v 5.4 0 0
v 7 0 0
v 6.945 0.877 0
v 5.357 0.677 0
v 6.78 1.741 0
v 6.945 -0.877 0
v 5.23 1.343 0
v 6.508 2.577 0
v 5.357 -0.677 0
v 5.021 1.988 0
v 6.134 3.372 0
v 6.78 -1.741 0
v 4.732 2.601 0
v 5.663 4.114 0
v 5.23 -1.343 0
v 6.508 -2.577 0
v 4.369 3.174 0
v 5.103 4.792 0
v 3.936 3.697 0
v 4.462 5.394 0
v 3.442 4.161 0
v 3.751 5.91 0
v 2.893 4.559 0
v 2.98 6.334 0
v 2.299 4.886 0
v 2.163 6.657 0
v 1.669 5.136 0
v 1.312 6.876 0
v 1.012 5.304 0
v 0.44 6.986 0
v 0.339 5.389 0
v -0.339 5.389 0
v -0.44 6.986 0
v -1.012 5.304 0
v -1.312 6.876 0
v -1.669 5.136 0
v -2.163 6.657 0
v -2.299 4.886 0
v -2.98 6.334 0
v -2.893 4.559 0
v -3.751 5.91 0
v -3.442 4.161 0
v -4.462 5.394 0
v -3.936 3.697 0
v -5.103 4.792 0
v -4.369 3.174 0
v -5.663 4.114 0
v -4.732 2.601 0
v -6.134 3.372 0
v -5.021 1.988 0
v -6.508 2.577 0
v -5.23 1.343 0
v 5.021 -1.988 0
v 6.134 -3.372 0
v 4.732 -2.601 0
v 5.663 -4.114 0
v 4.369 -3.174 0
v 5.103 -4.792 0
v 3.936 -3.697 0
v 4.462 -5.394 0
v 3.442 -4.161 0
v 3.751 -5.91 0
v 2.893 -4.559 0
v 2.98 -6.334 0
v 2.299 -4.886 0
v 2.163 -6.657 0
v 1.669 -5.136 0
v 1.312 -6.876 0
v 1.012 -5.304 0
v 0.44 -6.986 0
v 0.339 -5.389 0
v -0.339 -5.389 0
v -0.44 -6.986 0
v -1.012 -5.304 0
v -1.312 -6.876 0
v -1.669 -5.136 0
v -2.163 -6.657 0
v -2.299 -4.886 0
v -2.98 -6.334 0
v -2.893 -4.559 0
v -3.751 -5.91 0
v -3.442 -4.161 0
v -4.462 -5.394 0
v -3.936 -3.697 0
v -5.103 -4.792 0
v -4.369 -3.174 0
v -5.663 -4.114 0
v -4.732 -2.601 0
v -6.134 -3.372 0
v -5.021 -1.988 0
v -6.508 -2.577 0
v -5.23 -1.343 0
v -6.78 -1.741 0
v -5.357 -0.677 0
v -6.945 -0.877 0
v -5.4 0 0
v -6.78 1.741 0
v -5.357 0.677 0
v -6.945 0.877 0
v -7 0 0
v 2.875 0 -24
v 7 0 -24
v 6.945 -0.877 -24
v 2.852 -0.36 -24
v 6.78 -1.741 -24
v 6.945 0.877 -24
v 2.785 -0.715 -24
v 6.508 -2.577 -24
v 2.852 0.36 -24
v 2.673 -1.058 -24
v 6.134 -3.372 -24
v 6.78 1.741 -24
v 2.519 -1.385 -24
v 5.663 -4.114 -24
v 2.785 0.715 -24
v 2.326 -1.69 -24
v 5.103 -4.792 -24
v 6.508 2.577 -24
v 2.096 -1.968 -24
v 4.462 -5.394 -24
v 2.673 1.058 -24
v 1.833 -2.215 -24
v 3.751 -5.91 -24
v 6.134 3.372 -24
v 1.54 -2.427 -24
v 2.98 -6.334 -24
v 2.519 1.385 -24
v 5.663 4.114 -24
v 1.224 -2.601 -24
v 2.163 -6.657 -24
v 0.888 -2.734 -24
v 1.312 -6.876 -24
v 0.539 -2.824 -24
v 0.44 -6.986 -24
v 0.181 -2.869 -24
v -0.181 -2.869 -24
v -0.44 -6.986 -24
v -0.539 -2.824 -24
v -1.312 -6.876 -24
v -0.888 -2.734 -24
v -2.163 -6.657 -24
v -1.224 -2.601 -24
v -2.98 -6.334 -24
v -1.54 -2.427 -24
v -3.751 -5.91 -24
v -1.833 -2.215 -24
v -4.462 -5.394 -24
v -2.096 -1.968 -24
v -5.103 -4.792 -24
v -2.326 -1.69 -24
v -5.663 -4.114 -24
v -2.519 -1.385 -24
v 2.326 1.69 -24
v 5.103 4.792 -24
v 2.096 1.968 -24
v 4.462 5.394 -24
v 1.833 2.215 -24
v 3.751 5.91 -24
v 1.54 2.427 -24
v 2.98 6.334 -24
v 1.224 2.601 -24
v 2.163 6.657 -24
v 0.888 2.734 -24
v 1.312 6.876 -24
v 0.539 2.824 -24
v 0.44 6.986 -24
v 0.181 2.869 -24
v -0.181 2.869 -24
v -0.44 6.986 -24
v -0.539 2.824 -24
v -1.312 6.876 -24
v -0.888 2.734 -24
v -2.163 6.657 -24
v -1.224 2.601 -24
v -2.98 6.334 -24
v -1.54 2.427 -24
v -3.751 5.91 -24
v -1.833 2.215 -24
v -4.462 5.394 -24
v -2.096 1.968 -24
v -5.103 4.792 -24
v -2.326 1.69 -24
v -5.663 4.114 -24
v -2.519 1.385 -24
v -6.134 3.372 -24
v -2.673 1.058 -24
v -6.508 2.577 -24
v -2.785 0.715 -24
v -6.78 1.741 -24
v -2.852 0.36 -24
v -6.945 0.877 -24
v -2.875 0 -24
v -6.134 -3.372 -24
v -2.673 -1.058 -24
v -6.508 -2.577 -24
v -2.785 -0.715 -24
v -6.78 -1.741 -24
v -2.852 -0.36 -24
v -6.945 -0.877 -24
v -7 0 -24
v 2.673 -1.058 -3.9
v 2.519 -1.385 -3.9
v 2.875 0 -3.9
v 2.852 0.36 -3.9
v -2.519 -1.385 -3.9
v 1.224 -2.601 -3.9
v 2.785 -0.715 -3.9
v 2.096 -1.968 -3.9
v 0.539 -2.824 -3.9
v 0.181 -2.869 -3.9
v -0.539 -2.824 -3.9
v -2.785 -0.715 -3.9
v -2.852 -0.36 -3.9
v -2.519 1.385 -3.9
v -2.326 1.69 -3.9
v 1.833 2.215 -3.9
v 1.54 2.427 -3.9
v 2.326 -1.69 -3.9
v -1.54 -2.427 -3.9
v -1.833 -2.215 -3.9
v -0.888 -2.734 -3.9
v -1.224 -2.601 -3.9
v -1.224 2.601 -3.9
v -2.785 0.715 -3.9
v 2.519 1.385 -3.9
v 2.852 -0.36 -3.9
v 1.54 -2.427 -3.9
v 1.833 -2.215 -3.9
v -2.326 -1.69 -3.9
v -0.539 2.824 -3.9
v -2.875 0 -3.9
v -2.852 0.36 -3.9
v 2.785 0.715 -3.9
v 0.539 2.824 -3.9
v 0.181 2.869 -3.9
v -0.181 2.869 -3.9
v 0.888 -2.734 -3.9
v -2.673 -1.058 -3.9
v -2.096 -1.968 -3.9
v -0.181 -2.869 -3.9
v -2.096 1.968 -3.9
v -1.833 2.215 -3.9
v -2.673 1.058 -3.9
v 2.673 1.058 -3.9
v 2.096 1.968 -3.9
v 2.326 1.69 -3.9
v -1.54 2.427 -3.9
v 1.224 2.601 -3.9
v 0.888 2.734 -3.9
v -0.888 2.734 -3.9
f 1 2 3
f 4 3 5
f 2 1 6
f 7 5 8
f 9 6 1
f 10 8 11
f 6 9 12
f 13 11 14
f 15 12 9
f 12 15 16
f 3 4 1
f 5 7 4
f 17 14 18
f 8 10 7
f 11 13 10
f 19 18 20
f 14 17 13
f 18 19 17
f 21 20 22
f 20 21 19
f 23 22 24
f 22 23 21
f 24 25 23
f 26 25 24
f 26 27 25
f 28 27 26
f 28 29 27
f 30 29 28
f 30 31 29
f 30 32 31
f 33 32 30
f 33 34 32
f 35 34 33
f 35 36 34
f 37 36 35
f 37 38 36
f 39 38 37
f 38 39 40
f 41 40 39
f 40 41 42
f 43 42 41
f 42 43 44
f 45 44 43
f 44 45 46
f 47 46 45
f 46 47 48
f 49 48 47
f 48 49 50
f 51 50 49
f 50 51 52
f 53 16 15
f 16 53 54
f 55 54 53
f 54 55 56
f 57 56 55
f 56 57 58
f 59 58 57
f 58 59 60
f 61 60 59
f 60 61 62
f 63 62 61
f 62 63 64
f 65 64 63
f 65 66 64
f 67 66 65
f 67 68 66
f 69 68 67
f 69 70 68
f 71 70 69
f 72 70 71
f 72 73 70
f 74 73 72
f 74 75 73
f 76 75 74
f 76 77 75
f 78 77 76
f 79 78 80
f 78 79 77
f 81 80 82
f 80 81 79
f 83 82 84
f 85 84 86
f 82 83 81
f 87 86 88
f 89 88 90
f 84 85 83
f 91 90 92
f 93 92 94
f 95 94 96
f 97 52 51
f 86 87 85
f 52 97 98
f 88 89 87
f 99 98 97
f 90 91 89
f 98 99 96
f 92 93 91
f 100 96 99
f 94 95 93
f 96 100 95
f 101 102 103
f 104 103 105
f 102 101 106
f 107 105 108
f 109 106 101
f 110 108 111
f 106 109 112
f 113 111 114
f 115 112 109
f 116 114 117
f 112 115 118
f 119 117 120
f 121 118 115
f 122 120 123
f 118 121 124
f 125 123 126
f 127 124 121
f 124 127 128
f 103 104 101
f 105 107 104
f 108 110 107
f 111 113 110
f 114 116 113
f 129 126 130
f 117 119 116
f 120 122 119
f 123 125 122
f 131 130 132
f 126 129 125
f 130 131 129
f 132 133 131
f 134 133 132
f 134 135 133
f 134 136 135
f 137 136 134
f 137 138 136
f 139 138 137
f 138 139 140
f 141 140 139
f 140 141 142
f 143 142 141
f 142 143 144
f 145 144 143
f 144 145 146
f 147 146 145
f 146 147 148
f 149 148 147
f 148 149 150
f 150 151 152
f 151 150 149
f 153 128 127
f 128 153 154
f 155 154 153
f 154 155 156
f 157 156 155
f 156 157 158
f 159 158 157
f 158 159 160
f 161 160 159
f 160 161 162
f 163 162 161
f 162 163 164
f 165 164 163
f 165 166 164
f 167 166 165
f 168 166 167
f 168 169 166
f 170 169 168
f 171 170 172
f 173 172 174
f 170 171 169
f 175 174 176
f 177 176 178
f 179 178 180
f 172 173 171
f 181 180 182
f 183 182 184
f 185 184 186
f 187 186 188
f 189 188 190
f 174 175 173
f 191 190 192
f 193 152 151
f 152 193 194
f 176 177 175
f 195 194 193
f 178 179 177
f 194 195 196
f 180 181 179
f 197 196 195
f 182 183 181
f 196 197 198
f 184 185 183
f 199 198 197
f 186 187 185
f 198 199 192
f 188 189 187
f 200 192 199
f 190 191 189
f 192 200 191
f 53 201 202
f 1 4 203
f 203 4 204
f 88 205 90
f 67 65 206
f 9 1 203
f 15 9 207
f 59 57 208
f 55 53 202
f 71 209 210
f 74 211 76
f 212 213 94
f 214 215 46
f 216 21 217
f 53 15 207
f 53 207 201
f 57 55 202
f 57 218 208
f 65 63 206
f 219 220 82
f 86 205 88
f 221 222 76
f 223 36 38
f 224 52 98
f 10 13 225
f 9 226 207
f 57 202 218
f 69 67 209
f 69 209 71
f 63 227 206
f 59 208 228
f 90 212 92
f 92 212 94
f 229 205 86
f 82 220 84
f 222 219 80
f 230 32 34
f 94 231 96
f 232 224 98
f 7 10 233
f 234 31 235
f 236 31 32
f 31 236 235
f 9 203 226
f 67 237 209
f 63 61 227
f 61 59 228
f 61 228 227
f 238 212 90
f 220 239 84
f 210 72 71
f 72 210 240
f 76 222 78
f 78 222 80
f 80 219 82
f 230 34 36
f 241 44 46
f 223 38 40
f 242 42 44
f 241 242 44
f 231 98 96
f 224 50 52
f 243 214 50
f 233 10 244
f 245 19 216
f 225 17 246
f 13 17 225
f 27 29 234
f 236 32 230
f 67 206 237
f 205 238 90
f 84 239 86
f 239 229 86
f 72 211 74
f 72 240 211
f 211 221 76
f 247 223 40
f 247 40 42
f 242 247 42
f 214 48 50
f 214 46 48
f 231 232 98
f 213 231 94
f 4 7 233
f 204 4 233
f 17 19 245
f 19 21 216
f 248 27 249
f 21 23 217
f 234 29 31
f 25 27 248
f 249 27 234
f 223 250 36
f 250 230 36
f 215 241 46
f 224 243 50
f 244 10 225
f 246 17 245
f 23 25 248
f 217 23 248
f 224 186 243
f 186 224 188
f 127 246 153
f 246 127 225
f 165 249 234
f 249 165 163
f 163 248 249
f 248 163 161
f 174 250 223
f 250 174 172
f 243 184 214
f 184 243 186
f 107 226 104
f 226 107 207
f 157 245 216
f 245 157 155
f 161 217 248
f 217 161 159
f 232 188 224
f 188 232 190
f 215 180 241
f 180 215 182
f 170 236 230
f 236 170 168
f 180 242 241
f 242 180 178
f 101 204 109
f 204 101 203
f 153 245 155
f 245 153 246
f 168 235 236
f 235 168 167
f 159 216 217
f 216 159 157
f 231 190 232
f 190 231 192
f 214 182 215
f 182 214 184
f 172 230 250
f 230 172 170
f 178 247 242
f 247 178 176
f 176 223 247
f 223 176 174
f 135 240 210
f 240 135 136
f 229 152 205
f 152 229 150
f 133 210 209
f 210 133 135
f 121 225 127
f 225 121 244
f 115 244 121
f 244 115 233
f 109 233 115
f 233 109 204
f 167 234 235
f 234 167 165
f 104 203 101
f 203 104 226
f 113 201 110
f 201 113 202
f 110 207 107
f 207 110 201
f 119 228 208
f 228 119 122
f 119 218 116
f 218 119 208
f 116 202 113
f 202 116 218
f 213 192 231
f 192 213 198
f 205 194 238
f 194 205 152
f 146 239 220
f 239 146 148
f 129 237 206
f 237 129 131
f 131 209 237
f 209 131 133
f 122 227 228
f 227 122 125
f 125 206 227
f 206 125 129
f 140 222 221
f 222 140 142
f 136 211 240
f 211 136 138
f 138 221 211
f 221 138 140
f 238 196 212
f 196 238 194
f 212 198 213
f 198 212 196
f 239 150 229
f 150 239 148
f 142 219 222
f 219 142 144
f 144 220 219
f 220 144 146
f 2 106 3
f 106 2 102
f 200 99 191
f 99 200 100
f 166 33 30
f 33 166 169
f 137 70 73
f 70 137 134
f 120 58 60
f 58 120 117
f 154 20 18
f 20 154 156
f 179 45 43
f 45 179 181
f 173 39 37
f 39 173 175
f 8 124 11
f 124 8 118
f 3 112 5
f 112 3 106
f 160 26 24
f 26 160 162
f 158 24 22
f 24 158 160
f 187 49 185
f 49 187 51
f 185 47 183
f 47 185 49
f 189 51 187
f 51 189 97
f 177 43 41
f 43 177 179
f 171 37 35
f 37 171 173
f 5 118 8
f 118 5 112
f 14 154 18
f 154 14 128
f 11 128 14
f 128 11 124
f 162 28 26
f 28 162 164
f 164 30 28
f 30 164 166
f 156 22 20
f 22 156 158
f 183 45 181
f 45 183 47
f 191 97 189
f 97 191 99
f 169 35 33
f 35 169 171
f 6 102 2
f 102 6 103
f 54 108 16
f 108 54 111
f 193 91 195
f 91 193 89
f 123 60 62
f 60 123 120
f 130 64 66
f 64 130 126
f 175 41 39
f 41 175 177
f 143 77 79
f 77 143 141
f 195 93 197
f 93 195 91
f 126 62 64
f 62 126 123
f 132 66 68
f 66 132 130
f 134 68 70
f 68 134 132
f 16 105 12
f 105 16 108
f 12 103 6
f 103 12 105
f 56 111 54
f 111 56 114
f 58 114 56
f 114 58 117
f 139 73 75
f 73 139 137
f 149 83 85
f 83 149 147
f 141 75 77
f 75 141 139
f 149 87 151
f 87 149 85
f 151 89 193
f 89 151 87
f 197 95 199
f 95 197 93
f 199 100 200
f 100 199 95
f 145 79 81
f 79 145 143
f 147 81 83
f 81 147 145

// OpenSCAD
$fn = 50;


difference() {
	union() {
		translate(v = [0, 0, -24.0000000000]) {
			cylinder(h = 24, r = 7.0000000000);
		}
		cylinder(h = 0, r = 13.0000000000);
	}
	union() {
		translate(v = [0, 0, 0]) {
			rotate(a = [0, 0, 0]) {
				difference() {
					union() {
						#translate(v = [0, 0, -24.0000000000]) {
							cylinder(h = 24, r = 2.6000000000);
						}
						#translate(v = [0, 0, -3.9000000000]) {
							cylinder(h = 3.9000000000, r = 7.0000000000, r1 = 2.8750000000, r2 = 5.4000000000);
						}
						#translate(v = [0, 0, -24.0000000000]) {
							cylinder(h = 24, r = 2.8750000000);
						}
						#translate(v = [0, 0, -24.0000000000]) {
							cylinder(h = 24, r = 2.6000000000);
						}
					}
					union();
				}
			}
		}
	}
}
